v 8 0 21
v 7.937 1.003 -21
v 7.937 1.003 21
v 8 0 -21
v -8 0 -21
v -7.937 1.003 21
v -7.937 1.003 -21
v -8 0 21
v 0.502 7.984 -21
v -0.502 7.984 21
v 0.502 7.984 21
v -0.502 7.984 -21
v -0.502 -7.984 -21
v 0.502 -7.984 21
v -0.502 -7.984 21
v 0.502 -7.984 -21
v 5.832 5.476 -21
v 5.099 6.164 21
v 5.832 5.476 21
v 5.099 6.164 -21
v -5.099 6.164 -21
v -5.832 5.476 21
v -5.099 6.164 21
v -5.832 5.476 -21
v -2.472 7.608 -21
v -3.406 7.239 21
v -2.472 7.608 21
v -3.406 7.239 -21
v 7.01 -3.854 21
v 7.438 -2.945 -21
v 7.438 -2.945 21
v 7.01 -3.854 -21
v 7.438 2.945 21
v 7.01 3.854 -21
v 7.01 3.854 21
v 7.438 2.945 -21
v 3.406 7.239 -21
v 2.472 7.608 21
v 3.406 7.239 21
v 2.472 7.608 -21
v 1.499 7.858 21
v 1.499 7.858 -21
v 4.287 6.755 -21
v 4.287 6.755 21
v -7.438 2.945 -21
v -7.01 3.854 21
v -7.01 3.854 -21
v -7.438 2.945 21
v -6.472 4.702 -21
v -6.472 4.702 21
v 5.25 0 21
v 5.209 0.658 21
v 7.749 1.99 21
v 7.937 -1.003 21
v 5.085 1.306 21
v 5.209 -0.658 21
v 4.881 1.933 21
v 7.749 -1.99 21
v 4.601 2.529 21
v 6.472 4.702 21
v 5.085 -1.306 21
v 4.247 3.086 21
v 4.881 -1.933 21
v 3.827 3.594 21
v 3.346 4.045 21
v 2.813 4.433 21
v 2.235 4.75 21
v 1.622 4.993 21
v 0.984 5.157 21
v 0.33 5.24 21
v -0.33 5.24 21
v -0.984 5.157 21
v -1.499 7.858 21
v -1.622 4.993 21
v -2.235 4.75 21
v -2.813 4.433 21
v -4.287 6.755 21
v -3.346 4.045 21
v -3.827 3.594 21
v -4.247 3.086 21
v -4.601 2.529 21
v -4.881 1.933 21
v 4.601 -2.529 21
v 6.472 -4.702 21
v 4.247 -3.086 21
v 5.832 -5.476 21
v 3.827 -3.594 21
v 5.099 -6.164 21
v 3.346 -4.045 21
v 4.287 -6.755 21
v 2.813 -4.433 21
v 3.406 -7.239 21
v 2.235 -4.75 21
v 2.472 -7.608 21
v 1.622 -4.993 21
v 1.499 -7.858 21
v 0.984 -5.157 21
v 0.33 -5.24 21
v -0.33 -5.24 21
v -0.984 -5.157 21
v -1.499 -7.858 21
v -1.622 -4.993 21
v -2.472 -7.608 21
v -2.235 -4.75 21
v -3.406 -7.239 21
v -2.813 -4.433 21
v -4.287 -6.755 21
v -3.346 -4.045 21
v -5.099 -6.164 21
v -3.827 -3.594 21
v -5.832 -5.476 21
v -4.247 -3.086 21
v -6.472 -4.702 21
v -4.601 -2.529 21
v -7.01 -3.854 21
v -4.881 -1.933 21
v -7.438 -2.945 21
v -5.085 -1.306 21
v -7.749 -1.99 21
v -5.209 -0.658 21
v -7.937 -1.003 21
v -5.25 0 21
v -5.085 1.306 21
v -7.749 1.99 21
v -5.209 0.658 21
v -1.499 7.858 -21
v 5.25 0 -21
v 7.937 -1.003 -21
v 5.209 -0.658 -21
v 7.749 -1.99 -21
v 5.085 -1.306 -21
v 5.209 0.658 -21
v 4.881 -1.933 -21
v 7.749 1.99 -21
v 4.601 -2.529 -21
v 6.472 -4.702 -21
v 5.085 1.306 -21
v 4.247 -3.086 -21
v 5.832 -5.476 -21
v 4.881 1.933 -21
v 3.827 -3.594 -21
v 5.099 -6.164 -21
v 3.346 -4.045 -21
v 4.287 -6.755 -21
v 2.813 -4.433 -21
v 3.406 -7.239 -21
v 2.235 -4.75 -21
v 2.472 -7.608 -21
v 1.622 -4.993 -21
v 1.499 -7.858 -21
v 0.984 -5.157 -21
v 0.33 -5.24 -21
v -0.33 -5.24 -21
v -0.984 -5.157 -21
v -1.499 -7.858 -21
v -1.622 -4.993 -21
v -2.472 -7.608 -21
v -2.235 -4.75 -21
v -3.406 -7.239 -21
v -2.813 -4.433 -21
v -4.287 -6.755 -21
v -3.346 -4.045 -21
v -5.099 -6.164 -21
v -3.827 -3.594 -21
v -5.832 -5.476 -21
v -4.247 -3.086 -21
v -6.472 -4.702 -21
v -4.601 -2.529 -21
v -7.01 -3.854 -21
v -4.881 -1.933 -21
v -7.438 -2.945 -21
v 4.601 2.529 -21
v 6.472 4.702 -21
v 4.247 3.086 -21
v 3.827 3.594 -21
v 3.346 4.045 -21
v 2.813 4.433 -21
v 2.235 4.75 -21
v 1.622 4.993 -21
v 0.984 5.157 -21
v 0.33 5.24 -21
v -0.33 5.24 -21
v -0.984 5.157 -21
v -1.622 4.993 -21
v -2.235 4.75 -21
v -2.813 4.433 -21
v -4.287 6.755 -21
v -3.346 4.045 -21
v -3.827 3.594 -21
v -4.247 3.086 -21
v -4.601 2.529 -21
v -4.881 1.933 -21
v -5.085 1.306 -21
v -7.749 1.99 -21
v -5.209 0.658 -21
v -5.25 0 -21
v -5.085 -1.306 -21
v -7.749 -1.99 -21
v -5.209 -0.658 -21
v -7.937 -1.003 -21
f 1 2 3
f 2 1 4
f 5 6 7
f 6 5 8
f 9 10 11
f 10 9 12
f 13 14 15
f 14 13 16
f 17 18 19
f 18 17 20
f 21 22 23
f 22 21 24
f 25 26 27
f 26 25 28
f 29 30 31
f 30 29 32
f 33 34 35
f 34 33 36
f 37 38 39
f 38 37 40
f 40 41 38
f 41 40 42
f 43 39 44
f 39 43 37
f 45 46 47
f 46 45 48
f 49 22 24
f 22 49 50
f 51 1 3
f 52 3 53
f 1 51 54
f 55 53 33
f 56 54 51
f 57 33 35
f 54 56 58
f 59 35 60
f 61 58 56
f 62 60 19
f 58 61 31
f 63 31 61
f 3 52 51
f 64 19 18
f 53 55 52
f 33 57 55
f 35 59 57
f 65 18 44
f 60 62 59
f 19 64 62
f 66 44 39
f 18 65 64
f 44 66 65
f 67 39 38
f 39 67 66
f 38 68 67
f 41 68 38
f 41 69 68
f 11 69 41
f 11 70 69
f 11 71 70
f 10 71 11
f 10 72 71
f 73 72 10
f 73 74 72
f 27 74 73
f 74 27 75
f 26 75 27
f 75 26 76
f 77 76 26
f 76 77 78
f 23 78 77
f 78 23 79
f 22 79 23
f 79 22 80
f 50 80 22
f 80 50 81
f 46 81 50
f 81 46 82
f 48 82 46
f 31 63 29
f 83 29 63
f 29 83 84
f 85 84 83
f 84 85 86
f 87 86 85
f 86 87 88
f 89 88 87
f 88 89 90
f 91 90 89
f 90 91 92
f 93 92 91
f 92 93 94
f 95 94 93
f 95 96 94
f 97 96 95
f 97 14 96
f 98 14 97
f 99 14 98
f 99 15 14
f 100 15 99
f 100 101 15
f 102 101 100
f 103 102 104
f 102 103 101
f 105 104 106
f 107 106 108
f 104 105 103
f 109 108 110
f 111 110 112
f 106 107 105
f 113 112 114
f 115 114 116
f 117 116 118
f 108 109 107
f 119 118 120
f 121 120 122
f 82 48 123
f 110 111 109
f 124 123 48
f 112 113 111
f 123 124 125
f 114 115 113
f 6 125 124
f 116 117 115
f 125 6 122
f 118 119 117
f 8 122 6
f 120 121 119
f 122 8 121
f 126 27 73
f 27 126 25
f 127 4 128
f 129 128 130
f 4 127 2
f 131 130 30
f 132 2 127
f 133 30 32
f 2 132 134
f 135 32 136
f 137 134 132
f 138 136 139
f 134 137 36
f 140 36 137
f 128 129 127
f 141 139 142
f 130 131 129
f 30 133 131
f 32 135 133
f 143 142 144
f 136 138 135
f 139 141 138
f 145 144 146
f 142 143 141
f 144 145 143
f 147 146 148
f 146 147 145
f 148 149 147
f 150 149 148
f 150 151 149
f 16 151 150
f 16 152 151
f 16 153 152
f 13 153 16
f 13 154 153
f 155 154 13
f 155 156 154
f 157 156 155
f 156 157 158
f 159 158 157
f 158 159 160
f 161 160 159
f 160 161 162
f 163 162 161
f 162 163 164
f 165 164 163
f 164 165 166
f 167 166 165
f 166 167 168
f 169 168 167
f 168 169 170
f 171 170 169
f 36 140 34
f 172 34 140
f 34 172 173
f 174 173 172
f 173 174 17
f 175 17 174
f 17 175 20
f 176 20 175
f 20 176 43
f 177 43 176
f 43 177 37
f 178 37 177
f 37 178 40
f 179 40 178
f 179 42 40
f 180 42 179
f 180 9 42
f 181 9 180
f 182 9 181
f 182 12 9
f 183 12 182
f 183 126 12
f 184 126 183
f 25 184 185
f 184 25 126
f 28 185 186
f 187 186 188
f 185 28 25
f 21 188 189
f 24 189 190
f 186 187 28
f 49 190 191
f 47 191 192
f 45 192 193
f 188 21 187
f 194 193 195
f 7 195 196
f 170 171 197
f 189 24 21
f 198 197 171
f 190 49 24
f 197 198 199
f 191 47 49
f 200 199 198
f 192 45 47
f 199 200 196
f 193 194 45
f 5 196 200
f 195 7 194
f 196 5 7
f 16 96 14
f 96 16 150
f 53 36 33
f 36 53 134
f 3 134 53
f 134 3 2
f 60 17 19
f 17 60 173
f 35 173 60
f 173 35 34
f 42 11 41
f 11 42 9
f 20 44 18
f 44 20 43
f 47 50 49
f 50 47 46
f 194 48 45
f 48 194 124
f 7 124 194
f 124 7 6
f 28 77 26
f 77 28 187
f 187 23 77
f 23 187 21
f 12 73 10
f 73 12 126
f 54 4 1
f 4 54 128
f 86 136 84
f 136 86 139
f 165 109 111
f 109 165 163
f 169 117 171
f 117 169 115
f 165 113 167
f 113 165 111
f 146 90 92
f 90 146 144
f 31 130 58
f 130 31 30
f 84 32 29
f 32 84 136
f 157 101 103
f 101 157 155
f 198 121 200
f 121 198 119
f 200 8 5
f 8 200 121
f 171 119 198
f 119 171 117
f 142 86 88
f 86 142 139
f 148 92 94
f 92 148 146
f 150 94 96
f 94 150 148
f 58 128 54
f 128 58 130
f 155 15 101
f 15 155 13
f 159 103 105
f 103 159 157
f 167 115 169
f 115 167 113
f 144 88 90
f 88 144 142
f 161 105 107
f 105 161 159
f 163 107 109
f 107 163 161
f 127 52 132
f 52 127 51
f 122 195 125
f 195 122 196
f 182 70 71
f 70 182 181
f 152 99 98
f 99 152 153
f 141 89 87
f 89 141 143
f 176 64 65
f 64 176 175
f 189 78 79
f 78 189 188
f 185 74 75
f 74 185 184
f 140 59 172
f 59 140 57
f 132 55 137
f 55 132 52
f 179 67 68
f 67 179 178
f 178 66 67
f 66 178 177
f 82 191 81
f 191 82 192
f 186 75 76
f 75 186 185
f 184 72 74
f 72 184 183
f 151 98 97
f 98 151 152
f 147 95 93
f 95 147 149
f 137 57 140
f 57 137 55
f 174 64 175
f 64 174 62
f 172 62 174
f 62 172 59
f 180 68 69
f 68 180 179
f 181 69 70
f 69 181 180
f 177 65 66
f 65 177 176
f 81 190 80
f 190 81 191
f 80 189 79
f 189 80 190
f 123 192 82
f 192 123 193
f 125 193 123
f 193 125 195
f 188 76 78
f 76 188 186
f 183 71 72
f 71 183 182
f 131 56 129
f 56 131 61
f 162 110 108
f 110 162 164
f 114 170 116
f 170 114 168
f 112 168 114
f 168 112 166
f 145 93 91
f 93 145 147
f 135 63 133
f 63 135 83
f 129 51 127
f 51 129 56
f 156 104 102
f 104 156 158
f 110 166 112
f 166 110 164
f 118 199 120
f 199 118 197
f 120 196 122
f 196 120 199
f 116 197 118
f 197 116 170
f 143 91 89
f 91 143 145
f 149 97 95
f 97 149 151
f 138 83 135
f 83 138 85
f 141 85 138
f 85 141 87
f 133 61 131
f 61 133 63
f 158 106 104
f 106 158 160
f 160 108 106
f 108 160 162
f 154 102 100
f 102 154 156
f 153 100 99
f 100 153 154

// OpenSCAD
$fn = 50;


difference() {
	union() {
		translate(v = [0, 0, -21.0000000000]) {
			cylinder(h = 42, r = 8.0000000000);
		}
	}
	union() {
		translate(v = [0, 0, -100.0000000000]) {
			cylinder(h = 200, r = 5.2500000000);
		}
	}
}
